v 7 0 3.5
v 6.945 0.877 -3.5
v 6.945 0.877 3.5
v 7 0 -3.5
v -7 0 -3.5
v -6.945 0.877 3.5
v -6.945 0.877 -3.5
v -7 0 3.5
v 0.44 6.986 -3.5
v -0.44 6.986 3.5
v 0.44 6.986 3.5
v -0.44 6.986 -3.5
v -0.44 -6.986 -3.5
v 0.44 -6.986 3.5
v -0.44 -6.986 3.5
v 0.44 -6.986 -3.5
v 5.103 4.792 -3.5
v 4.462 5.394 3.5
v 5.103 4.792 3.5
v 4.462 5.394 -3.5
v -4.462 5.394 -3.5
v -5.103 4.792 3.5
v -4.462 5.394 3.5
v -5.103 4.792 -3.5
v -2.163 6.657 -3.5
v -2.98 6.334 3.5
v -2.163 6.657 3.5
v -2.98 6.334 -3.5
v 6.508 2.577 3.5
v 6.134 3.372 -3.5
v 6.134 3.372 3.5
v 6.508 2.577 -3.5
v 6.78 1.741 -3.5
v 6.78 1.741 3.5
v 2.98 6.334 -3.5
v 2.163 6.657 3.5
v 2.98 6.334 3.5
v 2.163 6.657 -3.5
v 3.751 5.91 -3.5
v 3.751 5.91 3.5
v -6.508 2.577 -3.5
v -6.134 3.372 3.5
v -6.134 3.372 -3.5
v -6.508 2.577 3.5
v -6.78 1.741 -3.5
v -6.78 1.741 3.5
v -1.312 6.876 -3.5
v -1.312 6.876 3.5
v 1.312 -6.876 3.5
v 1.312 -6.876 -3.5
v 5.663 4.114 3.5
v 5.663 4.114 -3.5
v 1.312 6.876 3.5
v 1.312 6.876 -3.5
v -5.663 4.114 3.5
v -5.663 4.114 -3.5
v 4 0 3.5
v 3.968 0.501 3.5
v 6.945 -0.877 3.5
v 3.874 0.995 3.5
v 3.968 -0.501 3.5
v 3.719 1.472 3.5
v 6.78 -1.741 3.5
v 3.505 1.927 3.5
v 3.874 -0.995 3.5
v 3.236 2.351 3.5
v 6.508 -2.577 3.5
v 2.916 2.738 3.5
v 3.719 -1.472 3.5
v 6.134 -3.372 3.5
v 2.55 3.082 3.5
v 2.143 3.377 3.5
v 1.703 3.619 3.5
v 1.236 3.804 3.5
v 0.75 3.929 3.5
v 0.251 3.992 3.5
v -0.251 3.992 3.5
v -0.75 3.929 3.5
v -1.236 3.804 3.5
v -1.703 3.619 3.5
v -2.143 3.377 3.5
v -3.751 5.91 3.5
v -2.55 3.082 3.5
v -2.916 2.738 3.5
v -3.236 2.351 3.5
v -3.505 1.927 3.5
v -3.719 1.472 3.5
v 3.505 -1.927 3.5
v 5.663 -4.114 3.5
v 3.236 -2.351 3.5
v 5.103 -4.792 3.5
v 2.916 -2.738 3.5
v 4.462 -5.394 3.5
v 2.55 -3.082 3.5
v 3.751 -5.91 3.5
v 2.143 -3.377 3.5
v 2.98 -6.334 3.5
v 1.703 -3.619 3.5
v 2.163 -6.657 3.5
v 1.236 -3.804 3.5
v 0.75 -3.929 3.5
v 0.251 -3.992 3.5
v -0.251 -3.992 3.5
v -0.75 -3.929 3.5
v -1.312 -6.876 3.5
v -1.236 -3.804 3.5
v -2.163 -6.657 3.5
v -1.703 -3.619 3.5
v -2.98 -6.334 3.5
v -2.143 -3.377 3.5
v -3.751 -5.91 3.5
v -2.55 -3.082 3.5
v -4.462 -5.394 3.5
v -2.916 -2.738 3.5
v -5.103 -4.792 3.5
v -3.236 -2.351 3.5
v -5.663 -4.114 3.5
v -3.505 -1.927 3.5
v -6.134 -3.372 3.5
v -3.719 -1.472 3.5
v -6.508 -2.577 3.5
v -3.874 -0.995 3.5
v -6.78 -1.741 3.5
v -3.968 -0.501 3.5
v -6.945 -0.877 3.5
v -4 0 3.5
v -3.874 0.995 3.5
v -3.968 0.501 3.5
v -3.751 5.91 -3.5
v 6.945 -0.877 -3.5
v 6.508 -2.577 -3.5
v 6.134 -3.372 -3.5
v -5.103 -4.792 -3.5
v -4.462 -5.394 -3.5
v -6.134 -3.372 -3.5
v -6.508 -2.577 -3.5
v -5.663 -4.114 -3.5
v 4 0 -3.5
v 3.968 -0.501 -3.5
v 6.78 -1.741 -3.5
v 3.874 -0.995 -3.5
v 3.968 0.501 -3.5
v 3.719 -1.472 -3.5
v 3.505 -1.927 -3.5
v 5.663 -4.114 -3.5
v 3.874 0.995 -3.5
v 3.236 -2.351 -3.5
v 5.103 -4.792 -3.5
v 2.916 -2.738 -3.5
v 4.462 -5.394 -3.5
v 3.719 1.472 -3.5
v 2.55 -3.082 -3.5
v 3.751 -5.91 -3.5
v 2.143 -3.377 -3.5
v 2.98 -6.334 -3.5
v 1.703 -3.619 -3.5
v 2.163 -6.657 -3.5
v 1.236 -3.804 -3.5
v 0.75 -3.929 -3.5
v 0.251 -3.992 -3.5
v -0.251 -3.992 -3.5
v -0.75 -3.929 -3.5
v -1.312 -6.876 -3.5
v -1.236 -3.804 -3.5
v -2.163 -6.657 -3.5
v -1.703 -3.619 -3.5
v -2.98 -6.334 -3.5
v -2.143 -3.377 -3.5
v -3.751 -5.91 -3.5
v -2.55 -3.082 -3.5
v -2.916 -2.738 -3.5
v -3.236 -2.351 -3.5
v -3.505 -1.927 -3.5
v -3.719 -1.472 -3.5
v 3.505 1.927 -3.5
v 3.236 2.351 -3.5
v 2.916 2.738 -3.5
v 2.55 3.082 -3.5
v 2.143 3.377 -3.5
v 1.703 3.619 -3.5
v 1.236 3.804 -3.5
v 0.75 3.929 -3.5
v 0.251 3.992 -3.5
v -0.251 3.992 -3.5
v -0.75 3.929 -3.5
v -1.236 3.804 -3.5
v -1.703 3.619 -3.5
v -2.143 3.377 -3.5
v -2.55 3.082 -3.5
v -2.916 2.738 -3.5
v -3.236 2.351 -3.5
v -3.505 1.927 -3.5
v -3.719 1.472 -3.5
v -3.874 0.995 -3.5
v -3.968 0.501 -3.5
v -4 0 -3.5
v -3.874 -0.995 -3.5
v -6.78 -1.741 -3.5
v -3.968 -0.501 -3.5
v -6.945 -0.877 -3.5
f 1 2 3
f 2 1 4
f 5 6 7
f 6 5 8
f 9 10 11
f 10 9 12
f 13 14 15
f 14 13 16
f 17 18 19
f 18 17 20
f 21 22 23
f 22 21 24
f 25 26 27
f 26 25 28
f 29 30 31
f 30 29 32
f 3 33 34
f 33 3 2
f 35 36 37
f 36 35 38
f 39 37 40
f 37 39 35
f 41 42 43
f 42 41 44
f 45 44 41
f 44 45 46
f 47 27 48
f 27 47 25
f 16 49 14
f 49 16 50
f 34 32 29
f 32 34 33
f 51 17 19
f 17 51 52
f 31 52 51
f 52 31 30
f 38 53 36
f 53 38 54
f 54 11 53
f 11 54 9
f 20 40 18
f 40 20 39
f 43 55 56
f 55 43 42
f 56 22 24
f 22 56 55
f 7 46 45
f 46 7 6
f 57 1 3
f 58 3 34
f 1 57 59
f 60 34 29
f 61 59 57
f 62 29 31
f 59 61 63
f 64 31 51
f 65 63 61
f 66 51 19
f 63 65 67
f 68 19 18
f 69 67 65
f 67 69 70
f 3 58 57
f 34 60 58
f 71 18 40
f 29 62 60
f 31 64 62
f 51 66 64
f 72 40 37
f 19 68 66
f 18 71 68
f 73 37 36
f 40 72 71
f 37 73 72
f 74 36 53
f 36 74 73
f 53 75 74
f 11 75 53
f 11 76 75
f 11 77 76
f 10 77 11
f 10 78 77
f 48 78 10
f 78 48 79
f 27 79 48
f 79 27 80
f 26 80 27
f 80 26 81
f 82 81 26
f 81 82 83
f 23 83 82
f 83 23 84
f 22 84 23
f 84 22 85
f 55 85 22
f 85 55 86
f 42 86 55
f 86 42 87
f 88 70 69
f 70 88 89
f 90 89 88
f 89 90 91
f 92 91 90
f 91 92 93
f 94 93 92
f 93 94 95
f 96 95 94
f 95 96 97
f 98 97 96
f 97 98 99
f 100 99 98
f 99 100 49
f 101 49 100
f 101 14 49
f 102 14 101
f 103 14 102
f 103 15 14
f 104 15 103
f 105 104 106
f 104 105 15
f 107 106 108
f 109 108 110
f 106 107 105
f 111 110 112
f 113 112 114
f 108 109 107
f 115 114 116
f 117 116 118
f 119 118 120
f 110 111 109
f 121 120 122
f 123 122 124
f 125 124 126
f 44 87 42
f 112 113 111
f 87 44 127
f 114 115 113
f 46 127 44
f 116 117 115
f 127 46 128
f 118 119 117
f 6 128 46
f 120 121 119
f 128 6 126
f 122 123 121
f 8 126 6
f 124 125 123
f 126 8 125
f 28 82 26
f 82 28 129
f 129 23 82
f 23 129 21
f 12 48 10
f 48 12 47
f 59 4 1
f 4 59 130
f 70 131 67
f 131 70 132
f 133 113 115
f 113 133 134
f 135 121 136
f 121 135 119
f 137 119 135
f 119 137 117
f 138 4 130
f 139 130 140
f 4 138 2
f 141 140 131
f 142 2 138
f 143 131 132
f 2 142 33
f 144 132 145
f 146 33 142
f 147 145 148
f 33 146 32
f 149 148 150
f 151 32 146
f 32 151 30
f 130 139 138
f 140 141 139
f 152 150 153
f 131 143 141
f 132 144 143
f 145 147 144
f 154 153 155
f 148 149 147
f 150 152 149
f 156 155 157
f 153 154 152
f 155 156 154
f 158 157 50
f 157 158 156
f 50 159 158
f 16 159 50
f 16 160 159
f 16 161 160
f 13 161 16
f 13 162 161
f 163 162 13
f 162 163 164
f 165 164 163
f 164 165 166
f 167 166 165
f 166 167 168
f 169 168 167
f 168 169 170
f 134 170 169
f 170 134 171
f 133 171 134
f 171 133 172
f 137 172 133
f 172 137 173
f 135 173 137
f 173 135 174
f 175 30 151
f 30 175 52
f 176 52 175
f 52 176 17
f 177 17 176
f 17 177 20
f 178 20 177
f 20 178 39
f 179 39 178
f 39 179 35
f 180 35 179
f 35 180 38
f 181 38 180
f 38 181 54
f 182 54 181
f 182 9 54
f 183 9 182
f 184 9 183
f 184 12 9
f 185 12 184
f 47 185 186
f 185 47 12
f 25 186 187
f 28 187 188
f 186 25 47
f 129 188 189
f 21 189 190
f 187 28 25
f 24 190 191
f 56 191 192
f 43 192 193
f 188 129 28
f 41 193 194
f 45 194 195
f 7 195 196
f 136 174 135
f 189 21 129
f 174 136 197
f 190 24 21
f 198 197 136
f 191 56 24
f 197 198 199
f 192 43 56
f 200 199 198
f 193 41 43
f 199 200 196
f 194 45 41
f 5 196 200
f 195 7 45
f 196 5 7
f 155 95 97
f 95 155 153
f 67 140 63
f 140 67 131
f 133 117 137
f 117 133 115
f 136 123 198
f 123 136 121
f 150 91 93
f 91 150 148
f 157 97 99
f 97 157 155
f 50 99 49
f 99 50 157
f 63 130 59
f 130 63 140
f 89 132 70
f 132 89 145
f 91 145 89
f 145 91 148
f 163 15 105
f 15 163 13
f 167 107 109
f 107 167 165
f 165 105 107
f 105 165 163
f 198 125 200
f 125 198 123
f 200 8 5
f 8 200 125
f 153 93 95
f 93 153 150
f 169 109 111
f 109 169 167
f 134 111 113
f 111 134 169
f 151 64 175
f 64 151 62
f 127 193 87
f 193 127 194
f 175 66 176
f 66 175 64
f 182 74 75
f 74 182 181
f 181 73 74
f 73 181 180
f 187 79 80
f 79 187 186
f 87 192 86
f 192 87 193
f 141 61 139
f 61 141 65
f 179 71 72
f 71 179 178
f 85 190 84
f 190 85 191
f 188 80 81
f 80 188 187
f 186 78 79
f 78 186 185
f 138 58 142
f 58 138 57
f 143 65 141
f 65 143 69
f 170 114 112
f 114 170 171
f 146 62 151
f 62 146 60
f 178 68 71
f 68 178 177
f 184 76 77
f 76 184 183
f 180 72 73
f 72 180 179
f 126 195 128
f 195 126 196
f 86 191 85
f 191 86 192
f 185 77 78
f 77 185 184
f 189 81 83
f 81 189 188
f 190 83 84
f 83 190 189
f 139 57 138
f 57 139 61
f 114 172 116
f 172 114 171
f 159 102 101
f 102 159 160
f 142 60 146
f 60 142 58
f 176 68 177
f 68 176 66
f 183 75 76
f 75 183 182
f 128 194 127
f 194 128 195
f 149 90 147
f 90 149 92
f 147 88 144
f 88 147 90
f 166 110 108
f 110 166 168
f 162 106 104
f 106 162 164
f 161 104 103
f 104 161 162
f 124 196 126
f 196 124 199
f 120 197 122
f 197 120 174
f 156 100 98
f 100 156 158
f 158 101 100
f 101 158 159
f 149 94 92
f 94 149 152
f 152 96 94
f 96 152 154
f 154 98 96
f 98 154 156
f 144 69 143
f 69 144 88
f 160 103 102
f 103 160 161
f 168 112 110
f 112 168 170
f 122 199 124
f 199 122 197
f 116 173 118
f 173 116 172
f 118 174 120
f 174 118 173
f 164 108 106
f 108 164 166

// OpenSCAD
$fn = 50;


difference() {
	union() {
		translate(v = [0, 0, -3.5000000000]) {
			cylinder(h = 7, r = 7.0000000000);
		}
	}
	union() {
		translate(v = [0, 0, -100.0000000000]) {
			cylinder(h = 200, r = 4);
		}
	}
}
